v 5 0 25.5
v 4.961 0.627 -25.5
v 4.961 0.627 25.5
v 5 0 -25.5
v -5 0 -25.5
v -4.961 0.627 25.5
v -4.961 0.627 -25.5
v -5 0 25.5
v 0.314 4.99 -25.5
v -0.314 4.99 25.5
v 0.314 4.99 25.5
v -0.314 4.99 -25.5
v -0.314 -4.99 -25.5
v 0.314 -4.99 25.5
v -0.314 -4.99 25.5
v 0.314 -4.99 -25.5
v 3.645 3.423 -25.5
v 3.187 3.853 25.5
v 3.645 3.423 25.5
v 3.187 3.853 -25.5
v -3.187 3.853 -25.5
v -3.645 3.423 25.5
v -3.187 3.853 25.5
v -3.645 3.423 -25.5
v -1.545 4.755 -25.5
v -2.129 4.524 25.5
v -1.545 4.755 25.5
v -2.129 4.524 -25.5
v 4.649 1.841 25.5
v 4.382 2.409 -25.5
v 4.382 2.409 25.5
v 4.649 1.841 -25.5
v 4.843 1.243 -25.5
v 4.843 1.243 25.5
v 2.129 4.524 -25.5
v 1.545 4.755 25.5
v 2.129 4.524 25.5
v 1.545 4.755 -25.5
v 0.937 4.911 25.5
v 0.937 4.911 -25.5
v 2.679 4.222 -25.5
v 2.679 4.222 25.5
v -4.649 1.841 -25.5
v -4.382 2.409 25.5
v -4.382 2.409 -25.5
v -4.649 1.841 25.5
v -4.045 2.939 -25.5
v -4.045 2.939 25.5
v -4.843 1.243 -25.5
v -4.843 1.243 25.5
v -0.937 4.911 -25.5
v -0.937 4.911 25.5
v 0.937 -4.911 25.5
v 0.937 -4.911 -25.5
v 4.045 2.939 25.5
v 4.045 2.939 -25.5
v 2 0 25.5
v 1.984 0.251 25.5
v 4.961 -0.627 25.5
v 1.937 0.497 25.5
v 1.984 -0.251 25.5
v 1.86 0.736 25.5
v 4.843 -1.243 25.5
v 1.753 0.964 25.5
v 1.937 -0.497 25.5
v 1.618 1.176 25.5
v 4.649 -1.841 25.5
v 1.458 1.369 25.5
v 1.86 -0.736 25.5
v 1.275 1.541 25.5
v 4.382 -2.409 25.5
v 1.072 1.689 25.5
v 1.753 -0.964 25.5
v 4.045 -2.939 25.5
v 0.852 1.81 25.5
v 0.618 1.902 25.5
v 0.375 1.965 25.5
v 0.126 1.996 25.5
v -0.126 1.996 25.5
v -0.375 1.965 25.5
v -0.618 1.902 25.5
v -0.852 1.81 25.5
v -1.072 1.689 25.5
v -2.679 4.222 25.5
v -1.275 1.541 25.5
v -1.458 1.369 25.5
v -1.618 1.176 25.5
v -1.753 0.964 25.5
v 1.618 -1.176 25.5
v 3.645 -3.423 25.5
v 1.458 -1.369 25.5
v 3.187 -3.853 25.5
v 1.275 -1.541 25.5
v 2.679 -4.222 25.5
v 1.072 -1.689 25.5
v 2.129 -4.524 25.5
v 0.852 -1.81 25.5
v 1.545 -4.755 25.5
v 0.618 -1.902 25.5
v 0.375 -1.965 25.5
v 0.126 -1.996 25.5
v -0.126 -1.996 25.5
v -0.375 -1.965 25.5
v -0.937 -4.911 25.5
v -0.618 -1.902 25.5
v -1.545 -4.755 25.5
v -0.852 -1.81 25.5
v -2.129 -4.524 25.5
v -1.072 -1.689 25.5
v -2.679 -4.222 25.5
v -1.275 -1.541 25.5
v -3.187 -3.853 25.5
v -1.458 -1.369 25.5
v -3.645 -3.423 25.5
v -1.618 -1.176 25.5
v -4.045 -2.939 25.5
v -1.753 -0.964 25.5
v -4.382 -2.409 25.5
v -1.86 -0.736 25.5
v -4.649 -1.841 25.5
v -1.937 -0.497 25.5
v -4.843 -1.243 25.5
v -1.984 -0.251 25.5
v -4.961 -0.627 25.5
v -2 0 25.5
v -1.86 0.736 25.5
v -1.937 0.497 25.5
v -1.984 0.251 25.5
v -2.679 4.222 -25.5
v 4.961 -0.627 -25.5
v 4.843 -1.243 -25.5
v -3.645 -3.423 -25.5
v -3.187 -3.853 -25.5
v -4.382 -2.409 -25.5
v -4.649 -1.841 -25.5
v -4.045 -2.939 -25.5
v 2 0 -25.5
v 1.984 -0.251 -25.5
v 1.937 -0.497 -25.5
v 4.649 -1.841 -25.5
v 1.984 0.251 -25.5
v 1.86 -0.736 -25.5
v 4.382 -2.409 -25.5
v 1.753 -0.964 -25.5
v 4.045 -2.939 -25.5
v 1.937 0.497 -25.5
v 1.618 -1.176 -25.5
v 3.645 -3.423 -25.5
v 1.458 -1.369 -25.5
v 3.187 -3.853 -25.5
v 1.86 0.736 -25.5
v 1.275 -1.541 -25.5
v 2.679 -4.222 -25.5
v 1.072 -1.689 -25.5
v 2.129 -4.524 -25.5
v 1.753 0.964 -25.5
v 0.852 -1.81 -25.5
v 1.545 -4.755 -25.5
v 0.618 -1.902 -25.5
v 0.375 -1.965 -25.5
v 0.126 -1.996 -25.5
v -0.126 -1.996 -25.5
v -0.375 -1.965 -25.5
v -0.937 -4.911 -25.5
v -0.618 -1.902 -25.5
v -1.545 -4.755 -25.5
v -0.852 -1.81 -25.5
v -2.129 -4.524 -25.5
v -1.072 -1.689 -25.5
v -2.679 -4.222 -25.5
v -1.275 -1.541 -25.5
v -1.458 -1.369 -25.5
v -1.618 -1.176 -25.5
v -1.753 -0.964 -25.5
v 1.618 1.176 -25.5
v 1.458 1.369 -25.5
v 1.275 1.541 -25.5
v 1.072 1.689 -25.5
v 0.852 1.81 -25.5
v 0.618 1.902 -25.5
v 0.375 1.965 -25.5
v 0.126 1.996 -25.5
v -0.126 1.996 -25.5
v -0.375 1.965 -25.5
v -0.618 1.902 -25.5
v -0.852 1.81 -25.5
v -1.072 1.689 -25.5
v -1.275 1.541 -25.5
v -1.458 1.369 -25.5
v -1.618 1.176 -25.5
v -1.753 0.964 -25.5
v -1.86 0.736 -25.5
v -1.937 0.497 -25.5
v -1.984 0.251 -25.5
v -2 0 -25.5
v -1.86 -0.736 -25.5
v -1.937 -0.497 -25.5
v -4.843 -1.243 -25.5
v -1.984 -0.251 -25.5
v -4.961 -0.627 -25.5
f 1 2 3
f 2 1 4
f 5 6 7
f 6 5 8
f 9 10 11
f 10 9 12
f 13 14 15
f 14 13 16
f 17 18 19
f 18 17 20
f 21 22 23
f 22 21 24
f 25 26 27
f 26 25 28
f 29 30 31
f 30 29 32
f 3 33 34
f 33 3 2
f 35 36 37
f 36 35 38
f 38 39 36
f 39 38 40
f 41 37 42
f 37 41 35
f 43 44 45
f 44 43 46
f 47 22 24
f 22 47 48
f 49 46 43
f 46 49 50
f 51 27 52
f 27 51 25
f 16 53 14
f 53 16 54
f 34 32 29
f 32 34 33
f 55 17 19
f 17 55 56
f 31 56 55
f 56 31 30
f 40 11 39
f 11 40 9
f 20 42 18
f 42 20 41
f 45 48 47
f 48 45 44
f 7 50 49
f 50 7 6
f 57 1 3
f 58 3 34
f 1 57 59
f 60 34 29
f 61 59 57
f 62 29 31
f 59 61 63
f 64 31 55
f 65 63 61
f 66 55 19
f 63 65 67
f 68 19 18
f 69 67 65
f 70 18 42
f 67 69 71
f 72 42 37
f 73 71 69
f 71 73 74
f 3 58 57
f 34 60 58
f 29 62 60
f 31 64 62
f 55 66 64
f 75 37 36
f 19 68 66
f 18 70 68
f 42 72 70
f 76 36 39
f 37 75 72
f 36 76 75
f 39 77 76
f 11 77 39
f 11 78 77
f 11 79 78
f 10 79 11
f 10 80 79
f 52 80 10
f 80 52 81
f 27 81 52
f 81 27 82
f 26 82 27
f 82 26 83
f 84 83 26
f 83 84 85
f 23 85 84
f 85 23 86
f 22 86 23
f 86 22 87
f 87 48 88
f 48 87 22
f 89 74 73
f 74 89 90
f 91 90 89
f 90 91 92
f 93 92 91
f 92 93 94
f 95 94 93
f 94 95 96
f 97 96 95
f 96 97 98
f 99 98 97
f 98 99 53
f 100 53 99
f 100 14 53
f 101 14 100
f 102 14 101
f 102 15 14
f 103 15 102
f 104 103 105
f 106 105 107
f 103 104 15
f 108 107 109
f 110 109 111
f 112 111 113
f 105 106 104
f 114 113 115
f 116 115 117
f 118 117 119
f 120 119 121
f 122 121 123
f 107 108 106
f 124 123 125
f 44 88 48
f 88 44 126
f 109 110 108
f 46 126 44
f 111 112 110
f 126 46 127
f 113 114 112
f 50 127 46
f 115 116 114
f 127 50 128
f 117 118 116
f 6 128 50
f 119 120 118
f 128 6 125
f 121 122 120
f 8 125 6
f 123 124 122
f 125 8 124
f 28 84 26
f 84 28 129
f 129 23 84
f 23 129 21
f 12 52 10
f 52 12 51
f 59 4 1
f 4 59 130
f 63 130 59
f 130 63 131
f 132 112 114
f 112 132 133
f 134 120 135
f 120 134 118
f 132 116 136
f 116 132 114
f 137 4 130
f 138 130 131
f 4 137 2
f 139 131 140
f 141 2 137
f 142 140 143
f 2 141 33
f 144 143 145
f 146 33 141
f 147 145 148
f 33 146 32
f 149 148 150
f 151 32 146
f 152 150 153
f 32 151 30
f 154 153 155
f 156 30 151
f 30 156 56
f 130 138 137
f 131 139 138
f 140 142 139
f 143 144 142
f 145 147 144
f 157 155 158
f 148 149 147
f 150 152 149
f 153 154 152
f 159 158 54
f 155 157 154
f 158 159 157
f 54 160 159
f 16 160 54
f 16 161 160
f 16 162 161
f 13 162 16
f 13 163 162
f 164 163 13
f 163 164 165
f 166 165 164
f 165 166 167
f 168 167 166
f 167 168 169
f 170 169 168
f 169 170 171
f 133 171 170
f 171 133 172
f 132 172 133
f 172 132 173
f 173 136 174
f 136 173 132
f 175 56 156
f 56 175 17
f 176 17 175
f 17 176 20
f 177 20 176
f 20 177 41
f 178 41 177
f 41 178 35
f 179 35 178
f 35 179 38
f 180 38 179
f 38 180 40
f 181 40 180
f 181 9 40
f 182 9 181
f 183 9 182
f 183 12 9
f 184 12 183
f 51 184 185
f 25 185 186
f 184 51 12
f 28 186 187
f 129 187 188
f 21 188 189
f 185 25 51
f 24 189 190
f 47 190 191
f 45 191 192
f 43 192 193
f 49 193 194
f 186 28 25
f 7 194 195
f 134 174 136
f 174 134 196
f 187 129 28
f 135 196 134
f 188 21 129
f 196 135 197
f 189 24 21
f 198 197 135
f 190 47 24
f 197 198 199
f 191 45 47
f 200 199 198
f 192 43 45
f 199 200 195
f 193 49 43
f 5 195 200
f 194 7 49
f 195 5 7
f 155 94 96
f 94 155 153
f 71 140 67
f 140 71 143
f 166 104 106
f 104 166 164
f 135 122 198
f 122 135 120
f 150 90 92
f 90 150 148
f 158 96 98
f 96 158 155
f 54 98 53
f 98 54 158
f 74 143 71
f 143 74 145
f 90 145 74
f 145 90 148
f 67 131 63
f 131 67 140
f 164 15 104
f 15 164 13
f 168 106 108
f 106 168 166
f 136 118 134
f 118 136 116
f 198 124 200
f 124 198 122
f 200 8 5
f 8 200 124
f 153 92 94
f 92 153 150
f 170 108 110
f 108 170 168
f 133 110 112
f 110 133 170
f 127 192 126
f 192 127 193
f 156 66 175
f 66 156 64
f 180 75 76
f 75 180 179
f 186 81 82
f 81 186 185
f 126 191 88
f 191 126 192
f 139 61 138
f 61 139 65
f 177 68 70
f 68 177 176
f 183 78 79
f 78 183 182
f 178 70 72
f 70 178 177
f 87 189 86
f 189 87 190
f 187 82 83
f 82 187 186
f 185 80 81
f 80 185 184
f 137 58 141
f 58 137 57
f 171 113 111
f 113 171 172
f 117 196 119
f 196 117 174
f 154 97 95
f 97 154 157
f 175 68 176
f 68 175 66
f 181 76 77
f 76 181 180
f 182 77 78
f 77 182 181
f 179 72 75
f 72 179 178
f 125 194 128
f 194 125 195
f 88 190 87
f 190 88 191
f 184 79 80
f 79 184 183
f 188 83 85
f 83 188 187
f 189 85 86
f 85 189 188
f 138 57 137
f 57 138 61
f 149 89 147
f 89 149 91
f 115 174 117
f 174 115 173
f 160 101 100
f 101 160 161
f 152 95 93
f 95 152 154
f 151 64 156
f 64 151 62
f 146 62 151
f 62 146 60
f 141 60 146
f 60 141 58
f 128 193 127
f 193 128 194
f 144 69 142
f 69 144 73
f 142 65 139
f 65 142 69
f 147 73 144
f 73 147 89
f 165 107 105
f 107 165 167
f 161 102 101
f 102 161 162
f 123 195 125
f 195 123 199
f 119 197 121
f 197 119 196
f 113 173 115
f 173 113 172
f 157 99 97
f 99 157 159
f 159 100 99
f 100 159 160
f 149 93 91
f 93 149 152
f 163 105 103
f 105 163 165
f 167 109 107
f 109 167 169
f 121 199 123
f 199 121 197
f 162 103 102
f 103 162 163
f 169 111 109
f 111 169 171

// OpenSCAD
$fn = 50;


difference() {
	union() {
		translate(v = [0, 0, -25.5000000000]) {
			cylinder(h = 51, r = 5.0000000000);
		}
	}
	union() {
		translate(v = [0, 0, -100.0000000000]) {
			cylinder(h = 200, r = 2);
		}
	}
}
